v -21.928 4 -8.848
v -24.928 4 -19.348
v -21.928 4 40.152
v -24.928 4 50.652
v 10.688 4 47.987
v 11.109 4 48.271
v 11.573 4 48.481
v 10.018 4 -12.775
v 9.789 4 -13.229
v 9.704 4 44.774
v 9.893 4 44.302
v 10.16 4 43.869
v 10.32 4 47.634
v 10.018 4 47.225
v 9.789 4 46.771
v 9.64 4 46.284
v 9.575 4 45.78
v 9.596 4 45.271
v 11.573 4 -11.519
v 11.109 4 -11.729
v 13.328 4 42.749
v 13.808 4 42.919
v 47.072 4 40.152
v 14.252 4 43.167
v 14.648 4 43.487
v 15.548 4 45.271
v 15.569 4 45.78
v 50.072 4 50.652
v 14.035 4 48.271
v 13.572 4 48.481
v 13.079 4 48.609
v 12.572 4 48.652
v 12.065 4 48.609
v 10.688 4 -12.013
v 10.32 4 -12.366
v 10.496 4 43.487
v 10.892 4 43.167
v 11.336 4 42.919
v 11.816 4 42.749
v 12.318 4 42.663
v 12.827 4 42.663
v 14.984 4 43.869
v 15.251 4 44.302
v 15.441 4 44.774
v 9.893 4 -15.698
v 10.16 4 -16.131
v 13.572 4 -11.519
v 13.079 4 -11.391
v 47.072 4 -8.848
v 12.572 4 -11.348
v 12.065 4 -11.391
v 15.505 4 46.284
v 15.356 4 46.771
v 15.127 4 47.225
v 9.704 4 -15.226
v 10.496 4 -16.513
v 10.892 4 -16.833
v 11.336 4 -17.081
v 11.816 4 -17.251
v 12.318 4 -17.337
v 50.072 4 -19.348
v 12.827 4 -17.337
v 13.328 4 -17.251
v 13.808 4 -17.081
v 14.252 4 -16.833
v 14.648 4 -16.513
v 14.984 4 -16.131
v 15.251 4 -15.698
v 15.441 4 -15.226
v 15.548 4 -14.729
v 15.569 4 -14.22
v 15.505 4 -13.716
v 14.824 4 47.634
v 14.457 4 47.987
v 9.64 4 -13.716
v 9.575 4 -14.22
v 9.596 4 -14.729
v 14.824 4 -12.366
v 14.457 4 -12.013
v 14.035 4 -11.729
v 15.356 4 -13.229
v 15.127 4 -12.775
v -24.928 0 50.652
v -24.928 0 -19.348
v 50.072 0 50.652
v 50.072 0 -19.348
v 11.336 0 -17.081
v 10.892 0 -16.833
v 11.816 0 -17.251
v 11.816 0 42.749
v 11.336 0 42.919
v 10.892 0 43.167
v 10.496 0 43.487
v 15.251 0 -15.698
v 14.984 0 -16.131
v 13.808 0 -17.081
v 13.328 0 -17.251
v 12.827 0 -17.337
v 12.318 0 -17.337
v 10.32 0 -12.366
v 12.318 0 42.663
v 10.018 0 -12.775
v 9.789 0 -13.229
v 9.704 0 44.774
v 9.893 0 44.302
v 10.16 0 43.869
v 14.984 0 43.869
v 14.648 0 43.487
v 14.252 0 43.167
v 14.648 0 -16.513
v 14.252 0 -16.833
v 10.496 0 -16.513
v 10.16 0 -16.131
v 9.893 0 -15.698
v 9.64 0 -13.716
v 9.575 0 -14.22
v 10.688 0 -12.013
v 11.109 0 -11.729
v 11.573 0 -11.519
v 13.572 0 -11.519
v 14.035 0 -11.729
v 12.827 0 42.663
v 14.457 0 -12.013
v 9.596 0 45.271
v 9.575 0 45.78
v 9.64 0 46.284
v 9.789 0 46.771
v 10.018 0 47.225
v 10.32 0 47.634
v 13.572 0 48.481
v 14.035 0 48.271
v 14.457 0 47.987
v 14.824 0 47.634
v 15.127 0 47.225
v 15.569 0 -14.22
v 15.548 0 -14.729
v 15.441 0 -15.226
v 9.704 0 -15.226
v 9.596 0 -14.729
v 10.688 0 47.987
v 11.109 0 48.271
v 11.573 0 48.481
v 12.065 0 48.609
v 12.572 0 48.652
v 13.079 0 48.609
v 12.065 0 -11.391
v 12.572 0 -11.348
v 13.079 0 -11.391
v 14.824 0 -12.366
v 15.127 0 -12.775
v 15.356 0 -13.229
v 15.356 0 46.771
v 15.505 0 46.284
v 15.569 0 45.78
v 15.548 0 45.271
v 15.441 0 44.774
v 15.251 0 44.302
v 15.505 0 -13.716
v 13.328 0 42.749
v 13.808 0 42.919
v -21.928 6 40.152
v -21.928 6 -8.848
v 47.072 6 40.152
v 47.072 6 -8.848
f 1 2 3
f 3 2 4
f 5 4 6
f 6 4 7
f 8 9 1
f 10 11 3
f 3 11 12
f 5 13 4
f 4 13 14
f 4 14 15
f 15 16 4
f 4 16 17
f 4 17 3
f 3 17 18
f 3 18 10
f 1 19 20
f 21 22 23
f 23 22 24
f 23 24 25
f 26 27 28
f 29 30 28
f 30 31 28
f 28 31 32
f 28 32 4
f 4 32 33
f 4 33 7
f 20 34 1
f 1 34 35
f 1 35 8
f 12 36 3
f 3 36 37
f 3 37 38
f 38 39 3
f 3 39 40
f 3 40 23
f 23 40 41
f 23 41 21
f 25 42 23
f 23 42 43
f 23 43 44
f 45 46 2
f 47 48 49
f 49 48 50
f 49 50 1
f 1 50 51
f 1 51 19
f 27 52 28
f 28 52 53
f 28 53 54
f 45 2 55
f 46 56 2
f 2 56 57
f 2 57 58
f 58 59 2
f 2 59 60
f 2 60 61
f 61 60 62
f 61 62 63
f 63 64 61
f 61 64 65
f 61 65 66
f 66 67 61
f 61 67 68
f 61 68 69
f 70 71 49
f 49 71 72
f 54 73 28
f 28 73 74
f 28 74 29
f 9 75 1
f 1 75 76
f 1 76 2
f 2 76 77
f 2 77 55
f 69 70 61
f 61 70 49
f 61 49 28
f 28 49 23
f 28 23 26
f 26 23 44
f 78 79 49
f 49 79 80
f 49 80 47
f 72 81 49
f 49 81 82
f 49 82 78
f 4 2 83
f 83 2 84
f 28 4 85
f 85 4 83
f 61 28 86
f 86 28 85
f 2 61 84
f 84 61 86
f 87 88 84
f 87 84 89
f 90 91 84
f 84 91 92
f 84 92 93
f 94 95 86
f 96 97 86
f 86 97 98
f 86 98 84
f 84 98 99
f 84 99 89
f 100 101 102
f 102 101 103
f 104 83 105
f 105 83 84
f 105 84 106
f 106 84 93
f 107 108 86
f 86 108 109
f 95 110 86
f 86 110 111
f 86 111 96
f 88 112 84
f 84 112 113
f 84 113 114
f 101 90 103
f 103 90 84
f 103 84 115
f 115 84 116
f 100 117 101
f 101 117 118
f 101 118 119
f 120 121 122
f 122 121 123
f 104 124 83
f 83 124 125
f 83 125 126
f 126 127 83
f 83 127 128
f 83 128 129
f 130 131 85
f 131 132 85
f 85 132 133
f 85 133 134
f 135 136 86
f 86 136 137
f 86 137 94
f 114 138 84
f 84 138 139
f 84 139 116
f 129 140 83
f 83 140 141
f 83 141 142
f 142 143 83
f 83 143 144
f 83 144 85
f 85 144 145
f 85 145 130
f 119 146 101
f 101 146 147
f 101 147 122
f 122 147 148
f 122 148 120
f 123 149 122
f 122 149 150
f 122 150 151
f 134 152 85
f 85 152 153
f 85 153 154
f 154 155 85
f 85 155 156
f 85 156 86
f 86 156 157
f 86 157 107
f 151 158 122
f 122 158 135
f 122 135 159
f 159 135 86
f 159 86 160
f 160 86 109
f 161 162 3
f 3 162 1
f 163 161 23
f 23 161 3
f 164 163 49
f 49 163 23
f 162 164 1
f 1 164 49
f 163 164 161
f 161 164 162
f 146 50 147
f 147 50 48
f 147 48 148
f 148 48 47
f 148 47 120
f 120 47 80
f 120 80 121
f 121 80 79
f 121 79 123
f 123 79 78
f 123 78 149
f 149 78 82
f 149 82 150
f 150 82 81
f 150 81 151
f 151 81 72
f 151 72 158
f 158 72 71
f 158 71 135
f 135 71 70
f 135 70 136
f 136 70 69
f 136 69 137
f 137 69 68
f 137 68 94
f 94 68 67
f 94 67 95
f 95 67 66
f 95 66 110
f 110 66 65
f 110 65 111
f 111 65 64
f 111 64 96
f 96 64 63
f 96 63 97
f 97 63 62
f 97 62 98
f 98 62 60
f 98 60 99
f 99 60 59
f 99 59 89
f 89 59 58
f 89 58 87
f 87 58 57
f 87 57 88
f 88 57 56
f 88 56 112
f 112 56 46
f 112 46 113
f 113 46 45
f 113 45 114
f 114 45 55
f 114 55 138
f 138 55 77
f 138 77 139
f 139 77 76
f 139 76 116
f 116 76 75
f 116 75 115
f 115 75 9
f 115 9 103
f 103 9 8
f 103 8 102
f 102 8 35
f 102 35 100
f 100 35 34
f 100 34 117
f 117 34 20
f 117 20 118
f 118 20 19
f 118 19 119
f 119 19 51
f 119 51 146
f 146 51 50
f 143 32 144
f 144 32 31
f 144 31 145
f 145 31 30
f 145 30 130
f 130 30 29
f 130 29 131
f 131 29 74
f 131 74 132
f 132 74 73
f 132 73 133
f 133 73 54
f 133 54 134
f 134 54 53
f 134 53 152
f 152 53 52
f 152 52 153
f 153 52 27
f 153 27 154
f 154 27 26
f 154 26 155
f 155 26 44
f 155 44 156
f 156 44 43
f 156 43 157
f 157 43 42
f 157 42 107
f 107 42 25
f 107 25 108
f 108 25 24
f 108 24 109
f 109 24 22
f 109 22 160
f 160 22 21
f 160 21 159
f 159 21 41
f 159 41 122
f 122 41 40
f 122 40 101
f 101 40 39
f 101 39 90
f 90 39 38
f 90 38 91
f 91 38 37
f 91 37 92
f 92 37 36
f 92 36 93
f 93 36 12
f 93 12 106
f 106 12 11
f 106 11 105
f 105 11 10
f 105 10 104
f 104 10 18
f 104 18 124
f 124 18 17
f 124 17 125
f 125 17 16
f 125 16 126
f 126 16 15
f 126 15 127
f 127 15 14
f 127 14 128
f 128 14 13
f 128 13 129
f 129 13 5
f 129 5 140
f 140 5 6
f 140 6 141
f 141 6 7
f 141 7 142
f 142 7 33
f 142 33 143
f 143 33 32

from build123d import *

# Parameters (mm, degrees)
SKETCH1_W           = 75
SKETCH1_H           = 70
BOSS_EXTRUDE1_DEPTH = 4
SKETCH2_W           = 69
SKETCH2_H           = 49
BOSS_EXTRUDE2_DEPTH = 2
SKETCH3_R           = 3
CUT_EXTRUDE1_DEPTH  = 4


with BuildPart() as part:
    # Sketch1 → Boss-Extrude1 (new body)
    with BuildSketch(Plane(origin=(0, 0, 0), x_dir=(1, 0, 0), z_dir=(0, 1, 0))):
        with Locations((12.572182046, -15.652440212)):
            Rectangle(SKETCH1_W, SKETCH1_H)
    extrude(amount=BOSS_EXTRUDE1_DEPTH)

    # Sketch2 → Boss-Extrude2 (add)
    with BuildSketch(Plane(origin=(0, 4, 0), x_dir=(1, 0, 0), z_dir=(0, 1, 0))):
        with Locations((12.572182046, -15.652440212)):
            Rectangle(SKETCH2_W, SKETCH2_H)
    extrude(amount=BOSS_EXTRUDE2_DEPTH)

    # Sketch3 → Cut-Extrude1 (cut)
    with BuildSketch(Plane(origin=(0, 4, 0), x_dir=(1, 0, 0), z_dir=(0, 1, 0))):
        with Locations((12.572182046, 14.347559788)):
            Circle(SKETCH3_R)
        with Locations((12.572182046, -45.652440212)):
            Circle(SKETCH3_R)
    extrude(amount=-CUT_EXTRUDE1_DEPTH, mode=Mode.SUBTRACT)


solid = part.part
